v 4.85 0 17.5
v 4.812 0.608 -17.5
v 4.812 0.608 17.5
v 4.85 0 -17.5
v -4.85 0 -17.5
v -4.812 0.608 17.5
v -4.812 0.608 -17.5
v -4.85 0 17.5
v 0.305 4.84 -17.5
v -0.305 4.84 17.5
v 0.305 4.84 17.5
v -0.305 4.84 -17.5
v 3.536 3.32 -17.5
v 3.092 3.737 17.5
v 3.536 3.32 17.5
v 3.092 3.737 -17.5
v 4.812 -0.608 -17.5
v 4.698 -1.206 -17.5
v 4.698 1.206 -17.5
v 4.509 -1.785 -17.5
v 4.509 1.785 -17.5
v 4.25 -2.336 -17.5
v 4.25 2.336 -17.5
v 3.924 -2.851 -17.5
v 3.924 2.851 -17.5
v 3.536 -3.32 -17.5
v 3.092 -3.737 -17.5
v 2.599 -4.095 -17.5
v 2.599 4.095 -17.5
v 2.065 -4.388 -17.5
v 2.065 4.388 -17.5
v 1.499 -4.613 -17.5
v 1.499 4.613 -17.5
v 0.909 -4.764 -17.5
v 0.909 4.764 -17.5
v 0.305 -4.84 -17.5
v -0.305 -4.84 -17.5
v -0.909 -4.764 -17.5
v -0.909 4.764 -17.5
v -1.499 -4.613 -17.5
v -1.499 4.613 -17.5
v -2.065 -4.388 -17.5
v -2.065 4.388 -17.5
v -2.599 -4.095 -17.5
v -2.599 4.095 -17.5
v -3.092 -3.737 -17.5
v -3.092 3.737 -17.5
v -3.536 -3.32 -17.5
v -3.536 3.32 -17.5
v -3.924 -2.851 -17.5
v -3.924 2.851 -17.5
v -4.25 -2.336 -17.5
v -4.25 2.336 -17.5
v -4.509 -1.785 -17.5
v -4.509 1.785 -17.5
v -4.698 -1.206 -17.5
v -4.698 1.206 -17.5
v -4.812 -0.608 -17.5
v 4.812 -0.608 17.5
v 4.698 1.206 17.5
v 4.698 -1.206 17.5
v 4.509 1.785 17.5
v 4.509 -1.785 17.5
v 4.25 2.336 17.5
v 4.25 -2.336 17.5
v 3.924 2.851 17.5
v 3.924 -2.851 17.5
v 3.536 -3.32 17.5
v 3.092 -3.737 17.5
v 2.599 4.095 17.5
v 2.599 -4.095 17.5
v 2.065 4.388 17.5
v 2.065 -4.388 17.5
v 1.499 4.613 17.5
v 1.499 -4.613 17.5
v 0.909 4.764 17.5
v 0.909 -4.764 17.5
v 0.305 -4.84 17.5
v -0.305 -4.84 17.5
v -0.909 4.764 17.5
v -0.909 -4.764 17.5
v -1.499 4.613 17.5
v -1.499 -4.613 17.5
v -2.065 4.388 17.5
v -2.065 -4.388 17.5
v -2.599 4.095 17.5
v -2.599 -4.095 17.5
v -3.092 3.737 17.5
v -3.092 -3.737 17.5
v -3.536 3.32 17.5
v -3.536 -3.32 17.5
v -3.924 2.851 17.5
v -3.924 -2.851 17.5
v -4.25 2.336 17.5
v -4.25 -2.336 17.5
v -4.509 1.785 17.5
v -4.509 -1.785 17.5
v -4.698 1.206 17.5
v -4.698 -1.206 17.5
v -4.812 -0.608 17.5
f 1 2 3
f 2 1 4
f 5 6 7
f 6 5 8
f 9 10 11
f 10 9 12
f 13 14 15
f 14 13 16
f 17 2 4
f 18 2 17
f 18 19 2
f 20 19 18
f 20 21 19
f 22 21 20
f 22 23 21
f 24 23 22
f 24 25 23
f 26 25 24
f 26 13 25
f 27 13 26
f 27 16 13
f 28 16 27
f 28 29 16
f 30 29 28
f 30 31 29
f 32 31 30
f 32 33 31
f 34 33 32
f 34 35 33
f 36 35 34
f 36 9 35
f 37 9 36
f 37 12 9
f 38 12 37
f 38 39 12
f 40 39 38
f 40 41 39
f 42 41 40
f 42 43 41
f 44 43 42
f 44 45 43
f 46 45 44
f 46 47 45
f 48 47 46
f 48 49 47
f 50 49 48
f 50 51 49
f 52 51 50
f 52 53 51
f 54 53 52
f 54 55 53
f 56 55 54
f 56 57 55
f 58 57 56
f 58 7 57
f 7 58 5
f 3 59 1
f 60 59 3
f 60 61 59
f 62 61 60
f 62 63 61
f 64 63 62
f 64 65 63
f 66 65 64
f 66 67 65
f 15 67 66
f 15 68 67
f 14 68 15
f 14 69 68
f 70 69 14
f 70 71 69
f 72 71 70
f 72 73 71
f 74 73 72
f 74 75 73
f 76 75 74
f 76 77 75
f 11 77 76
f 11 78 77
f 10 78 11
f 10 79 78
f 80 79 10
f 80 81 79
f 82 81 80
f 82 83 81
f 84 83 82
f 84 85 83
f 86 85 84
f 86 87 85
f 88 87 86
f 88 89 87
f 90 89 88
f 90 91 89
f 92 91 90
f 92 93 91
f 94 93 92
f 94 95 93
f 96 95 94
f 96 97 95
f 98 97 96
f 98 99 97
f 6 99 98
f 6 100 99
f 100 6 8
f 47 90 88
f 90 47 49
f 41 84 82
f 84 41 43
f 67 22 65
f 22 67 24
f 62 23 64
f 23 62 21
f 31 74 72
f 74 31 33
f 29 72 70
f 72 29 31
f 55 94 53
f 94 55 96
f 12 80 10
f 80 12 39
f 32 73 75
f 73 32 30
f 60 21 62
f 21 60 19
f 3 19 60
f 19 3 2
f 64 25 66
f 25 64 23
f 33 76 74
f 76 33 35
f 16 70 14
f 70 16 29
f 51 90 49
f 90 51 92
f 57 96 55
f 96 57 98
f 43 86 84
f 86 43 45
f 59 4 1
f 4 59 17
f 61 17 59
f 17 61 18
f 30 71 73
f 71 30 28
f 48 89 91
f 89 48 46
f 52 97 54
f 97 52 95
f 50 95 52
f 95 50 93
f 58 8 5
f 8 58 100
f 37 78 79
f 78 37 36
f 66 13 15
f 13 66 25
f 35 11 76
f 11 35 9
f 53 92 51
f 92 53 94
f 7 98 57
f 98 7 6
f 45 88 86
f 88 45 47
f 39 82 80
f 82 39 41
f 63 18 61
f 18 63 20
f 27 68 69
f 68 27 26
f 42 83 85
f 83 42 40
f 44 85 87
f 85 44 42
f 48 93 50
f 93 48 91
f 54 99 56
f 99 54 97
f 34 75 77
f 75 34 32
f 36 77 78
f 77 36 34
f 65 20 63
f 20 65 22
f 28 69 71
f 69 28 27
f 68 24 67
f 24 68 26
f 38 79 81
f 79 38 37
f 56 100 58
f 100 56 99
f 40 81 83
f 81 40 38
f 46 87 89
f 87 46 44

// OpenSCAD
$fn = 50;


difference() {
	union() {
		translate(v = [0, 0, -17.5000000000]) {
			cylinder(h = 35, r = 4.8500000000);
		}
	}
	union() {
		translate(v = [0, 0, -100.0000000000]) {
			cylinder(h = 200, r = 0);
		}
	}
}
